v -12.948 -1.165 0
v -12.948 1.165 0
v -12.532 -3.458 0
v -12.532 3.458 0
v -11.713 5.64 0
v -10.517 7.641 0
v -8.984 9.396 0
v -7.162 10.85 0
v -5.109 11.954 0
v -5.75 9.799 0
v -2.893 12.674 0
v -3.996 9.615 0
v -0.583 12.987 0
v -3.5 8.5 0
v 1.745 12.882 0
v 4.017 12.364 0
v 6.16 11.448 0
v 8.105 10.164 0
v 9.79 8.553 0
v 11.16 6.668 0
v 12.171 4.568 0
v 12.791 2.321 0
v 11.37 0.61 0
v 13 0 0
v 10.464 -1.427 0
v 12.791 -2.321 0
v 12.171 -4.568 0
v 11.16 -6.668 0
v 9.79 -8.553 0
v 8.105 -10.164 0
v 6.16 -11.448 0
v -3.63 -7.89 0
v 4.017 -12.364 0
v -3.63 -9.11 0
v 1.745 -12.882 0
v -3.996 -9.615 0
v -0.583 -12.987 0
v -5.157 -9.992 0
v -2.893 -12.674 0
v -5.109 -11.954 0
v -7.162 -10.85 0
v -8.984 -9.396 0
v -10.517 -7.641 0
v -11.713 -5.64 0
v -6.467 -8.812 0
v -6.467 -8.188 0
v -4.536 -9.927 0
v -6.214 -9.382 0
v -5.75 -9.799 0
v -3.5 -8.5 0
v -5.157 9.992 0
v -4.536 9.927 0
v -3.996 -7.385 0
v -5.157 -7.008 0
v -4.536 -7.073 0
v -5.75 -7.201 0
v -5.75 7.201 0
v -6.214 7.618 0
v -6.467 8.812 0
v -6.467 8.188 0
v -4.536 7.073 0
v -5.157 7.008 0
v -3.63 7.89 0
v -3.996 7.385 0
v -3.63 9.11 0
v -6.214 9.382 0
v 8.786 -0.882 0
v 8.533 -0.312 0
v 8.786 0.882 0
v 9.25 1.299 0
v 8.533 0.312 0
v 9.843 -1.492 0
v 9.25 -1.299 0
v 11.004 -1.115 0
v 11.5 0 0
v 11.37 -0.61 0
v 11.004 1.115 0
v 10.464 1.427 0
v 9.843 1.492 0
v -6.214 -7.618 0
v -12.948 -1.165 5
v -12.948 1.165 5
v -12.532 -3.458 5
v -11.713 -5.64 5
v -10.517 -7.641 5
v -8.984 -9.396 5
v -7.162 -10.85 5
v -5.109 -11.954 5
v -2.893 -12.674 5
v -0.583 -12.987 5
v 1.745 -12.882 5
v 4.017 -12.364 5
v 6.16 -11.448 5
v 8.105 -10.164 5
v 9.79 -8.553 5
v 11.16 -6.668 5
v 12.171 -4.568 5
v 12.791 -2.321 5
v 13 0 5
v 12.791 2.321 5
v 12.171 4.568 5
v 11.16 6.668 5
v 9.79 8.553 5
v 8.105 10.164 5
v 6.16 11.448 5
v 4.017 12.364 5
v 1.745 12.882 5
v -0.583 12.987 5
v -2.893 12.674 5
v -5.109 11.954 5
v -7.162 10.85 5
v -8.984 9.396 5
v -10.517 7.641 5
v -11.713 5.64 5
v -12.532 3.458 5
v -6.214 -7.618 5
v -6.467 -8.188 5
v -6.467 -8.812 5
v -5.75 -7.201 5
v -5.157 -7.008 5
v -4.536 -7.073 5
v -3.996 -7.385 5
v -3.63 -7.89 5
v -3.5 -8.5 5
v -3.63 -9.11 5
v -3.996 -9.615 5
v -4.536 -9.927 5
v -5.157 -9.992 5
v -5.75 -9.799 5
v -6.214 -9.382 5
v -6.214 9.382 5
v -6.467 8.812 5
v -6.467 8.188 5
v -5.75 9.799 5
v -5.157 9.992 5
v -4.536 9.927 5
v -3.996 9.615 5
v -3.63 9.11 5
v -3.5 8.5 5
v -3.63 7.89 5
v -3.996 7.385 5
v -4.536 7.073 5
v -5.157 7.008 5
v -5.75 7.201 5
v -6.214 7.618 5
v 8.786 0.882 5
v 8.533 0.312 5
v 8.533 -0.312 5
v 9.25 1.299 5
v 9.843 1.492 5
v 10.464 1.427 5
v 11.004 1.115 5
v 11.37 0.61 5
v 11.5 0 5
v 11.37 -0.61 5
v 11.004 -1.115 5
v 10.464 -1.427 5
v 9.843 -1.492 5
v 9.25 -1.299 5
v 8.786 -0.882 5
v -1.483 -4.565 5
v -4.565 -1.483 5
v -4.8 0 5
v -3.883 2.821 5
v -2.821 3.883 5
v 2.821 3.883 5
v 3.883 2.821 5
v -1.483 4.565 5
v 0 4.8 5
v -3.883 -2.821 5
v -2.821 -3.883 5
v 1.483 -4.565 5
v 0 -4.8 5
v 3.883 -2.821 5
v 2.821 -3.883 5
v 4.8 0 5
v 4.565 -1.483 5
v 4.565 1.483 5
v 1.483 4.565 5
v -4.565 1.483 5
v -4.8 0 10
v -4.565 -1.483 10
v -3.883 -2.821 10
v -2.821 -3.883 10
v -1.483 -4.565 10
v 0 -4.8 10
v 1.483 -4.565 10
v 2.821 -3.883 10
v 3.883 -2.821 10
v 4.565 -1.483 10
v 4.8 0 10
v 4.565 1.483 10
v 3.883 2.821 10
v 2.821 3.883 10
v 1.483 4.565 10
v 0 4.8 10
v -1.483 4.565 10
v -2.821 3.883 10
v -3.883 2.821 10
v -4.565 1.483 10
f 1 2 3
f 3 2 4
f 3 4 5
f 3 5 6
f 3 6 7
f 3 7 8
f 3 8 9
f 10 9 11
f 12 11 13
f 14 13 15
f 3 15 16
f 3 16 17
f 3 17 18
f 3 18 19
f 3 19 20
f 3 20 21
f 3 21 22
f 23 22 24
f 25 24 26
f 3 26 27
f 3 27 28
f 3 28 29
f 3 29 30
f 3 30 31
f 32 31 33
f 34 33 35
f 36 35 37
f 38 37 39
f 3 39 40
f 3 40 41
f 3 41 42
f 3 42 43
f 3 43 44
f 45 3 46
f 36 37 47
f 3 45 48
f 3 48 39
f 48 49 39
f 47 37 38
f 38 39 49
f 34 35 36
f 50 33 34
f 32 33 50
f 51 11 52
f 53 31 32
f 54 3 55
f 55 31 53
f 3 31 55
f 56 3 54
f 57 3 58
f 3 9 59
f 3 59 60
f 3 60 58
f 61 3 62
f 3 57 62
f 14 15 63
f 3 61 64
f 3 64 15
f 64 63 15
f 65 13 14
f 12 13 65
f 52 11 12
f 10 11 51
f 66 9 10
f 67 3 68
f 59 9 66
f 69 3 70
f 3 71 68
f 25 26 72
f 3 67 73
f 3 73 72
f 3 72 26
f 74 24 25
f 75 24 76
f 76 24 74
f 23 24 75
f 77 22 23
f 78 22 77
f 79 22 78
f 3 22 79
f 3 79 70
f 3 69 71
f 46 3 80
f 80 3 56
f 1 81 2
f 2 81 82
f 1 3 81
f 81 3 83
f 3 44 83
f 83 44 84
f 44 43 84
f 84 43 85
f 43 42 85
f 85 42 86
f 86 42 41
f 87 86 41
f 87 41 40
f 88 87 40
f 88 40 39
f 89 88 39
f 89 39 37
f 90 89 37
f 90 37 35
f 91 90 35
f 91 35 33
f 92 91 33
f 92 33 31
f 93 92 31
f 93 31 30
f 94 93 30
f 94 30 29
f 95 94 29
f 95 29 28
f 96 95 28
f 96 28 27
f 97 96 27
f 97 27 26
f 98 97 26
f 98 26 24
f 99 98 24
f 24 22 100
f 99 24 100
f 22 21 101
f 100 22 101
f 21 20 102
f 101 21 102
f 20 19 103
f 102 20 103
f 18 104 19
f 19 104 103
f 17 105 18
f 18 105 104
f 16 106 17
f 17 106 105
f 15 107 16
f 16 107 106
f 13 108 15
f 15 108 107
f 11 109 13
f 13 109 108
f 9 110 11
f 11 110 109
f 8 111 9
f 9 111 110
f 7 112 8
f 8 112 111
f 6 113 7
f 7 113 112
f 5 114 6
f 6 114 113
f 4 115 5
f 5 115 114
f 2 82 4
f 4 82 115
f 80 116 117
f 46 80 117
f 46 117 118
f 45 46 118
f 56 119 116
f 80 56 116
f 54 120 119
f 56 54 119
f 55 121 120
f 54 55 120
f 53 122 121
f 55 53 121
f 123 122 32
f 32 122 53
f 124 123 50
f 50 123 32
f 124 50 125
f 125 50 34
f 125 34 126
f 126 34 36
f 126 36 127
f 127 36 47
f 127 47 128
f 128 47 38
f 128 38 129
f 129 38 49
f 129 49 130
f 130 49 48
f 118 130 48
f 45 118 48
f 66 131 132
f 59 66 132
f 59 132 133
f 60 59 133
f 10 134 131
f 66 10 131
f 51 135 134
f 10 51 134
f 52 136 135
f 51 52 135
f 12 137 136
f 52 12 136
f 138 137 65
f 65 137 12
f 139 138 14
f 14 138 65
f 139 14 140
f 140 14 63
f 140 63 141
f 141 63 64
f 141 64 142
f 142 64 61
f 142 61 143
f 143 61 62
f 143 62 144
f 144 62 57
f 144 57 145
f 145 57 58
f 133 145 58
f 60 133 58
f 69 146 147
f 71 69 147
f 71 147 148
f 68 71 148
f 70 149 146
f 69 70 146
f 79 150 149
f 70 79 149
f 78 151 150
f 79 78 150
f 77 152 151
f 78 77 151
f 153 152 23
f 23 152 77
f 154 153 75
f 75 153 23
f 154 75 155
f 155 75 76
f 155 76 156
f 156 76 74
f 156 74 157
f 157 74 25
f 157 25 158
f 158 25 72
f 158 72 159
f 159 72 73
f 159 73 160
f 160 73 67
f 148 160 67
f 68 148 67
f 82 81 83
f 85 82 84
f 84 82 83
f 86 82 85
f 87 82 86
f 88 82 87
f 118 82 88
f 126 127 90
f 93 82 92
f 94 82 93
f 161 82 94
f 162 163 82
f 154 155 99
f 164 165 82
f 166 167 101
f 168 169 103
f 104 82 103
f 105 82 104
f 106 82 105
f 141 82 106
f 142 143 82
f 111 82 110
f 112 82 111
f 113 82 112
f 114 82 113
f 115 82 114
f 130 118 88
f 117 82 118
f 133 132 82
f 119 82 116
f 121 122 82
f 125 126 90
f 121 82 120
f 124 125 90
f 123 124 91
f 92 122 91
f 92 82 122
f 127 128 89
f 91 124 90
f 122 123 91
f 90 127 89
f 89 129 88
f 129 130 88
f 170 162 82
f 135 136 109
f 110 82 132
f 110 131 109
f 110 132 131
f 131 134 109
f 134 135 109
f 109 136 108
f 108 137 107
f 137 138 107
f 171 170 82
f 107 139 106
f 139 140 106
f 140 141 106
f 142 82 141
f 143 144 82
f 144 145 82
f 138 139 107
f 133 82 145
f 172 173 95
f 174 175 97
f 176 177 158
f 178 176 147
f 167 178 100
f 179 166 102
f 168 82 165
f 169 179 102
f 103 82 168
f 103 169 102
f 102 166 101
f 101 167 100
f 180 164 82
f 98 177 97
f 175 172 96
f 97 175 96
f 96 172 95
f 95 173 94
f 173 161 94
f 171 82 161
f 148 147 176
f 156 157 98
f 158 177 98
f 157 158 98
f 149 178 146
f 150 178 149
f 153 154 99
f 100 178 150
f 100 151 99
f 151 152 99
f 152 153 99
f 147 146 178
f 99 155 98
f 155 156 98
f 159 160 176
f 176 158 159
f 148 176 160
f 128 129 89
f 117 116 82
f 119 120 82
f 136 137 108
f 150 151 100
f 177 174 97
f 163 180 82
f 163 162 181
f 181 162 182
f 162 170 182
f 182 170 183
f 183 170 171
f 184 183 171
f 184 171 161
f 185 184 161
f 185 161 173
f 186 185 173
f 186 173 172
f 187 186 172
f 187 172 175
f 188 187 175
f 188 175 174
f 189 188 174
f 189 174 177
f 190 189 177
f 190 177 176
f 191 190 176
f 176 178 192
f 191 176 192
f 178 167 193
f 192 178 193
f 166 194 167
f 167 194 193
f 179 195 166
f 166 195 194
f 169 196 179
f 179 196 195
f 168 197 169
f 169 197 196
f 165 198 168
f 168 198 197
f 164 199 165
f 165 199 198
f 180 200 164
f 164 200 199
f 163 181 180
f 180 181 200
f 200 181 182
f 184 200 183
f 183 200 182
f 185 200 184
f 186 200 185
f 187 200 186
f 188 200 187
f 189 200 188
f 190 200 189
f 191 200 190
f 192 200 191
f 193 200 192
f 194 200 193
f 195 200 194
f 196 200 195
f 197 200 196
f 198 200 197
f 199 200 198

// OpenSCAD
module plashka2() {
difference() {
	cube([25,35,2]);
	translate([10,14.5,-1]) cylinder(4,r=15.2/2,$fn=25);
	translate([5,6,-1]) cylinder(4,r=1.5,$fn=15);
	translate([5,35-12,-1]) cylinder(4,r=1.5,$fn=15);
	translate([25-5,14.5,-1]) cylinder(4,r=1.5,$fn=15);
}
}

//plashka2();

//translate([10,14.5,-10])
difference() {
union() {
	cylinder(10,r=4.8,$fn=20);
	cylinder(5,r=13,$fn=35);
}
	translate([10,0,-1])cylinder(20,r=1.5,$fn=15);
	translate([-5,8.5,-1])cylinder(20,r=1.5,$fn=15);
	translate([-5,-8.5,-1])cylinder(20,r=1.5,$fn=15);

}
